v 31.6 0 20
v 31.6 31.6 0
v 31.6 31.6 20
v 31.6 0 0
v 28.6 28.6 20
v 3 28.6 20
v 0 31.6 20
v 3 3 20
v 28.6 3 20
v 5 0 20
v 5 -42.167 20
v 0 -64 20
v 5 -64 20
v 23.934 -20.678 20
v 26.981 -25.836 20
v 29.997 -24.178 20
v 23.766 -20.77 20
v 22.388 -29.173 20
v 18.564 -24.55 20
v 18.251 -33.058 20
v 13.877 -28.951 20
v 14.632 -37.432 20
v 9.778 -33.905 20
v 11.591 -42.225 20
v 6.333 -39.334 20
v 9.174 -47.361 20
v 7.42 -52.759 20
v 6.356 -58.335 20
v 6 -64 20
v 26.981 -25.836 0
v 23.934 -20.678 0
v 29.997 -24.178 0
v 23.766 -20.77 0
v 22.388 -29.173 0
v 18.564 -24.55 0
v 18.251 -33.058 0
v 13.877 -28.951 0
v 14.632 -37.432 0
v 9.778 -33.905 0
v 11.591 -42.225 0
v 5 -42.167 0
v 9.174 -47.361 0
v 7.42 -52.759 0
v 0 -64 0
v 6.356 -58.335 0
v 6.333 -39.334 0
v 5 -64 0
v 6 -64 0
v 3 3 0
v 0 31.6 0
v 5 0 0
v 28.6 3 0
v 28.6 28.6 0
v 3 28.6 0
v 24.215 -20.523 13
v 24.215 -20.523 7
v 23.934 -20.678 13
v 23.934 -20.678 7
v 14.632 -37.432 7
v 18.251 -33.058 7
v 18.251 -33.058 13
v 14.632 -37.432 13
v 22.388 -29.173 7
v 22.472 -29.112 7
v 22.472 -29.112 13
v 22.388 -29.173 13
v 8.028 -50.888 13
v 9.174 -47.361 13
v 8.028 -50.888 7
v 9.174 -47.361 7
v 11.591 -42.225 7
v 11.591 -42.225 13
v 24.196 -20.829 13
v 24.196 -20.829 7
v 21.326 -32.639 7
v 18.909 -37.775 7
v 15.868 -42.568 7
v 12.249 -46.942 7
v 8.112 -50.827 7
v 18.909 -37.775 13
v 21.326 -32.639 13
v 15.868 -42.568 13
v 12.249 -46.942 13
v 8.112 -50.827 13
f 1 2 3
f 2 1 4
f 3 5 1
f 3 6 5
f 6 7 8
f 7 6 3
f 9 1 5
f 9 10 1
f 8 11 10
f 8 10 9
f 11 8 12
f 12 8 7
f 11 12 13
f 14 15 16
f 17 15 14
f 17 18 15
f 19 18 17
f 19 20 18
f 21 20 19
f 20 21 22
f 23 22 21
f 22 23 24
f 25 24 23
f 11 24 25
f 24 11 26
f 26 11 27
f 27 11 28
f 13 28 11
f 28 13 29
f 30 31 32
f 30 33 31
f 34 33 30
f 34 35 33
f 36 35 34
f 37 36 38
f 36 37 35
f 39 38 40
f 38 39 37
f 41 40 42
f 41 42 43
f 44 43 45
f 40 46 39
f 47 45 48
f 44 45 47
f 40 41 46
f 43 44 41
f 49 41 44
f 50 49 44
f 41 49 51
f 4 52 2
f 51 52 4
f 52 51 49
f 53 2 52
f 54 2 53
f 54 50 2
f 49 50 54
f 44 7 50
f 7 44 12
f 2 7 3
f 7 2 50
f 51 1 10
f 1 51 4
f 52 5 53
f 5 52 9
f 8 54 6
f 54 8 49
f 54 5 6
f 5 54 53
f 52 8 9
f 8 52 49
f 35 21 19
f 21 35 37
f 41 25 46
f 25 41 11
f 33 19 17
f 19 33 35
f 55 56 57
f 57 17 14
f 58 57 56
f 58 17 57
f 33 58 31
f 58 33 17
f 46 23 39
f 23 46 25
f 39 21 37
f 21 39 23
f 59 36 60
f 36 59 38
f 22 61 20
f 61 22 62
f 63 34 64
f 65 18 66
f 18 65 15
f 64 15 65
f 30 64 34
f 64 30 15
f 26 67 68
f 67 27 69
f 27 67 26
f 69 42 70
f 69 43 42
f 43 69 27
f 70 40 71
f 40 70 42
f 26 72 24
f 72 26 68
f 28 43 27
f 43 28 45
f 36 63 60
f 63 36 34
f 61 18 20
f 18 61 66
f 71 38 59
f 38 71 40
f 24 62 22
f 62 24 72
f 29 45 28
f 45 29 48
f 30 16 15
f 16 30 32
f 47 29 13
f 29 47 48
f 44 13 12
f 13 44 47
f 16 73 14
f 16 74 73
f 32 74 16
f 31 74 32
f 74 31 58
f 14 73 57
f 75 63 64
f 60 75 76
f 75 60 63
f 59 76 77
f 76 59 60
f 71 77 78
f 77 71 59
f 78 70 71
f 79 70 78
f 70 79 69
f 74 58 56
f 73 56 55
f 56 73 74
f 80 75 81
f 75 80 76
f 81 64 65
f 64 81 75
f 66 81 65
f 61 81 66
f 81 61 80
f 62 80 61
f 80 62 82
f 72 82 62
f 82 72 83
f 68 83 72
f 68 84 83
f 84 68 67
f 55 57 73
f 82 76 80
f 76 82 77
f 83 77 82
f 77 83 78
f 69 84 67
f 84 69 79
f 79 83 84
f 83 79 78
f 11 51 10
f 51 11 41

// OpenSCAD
d=25+0.6;

difference() {
    cube([d+6, d+6, 20]);
    translate([3,3,-1])
        cube([d, d, 30]);
}

translate([0, -2.5*d, 0])
    cube([5, 2.5*d, 20]);

difference() {
    translate([d*2, -d*2.5, 0])
        cylinder(20, d=d*4, $fn=50);

    translate([d*2, -d*2.5, -1])
        cylinder(30, d=d*4-12, $fn=50);

    translate([0, -4.5*d, -1])
        cube([4*d, 2*d, 30]);

    translate([30, -4*d, -1])
        cube([4*d, 4*d, 30]);

    translate([3*d, -2*d, -1])
        rotate([0,0,60])
        cube([4*d, 4*d, 30]);
}

intersection() {
    translate([-d*2+30.5, -16, 7])
        cylinder(6, d=d*4-12, $fn=50);
    translate([d*2, -d*2.5, 0])
        cylinder(20, d=d*4, $fn=50);
}
